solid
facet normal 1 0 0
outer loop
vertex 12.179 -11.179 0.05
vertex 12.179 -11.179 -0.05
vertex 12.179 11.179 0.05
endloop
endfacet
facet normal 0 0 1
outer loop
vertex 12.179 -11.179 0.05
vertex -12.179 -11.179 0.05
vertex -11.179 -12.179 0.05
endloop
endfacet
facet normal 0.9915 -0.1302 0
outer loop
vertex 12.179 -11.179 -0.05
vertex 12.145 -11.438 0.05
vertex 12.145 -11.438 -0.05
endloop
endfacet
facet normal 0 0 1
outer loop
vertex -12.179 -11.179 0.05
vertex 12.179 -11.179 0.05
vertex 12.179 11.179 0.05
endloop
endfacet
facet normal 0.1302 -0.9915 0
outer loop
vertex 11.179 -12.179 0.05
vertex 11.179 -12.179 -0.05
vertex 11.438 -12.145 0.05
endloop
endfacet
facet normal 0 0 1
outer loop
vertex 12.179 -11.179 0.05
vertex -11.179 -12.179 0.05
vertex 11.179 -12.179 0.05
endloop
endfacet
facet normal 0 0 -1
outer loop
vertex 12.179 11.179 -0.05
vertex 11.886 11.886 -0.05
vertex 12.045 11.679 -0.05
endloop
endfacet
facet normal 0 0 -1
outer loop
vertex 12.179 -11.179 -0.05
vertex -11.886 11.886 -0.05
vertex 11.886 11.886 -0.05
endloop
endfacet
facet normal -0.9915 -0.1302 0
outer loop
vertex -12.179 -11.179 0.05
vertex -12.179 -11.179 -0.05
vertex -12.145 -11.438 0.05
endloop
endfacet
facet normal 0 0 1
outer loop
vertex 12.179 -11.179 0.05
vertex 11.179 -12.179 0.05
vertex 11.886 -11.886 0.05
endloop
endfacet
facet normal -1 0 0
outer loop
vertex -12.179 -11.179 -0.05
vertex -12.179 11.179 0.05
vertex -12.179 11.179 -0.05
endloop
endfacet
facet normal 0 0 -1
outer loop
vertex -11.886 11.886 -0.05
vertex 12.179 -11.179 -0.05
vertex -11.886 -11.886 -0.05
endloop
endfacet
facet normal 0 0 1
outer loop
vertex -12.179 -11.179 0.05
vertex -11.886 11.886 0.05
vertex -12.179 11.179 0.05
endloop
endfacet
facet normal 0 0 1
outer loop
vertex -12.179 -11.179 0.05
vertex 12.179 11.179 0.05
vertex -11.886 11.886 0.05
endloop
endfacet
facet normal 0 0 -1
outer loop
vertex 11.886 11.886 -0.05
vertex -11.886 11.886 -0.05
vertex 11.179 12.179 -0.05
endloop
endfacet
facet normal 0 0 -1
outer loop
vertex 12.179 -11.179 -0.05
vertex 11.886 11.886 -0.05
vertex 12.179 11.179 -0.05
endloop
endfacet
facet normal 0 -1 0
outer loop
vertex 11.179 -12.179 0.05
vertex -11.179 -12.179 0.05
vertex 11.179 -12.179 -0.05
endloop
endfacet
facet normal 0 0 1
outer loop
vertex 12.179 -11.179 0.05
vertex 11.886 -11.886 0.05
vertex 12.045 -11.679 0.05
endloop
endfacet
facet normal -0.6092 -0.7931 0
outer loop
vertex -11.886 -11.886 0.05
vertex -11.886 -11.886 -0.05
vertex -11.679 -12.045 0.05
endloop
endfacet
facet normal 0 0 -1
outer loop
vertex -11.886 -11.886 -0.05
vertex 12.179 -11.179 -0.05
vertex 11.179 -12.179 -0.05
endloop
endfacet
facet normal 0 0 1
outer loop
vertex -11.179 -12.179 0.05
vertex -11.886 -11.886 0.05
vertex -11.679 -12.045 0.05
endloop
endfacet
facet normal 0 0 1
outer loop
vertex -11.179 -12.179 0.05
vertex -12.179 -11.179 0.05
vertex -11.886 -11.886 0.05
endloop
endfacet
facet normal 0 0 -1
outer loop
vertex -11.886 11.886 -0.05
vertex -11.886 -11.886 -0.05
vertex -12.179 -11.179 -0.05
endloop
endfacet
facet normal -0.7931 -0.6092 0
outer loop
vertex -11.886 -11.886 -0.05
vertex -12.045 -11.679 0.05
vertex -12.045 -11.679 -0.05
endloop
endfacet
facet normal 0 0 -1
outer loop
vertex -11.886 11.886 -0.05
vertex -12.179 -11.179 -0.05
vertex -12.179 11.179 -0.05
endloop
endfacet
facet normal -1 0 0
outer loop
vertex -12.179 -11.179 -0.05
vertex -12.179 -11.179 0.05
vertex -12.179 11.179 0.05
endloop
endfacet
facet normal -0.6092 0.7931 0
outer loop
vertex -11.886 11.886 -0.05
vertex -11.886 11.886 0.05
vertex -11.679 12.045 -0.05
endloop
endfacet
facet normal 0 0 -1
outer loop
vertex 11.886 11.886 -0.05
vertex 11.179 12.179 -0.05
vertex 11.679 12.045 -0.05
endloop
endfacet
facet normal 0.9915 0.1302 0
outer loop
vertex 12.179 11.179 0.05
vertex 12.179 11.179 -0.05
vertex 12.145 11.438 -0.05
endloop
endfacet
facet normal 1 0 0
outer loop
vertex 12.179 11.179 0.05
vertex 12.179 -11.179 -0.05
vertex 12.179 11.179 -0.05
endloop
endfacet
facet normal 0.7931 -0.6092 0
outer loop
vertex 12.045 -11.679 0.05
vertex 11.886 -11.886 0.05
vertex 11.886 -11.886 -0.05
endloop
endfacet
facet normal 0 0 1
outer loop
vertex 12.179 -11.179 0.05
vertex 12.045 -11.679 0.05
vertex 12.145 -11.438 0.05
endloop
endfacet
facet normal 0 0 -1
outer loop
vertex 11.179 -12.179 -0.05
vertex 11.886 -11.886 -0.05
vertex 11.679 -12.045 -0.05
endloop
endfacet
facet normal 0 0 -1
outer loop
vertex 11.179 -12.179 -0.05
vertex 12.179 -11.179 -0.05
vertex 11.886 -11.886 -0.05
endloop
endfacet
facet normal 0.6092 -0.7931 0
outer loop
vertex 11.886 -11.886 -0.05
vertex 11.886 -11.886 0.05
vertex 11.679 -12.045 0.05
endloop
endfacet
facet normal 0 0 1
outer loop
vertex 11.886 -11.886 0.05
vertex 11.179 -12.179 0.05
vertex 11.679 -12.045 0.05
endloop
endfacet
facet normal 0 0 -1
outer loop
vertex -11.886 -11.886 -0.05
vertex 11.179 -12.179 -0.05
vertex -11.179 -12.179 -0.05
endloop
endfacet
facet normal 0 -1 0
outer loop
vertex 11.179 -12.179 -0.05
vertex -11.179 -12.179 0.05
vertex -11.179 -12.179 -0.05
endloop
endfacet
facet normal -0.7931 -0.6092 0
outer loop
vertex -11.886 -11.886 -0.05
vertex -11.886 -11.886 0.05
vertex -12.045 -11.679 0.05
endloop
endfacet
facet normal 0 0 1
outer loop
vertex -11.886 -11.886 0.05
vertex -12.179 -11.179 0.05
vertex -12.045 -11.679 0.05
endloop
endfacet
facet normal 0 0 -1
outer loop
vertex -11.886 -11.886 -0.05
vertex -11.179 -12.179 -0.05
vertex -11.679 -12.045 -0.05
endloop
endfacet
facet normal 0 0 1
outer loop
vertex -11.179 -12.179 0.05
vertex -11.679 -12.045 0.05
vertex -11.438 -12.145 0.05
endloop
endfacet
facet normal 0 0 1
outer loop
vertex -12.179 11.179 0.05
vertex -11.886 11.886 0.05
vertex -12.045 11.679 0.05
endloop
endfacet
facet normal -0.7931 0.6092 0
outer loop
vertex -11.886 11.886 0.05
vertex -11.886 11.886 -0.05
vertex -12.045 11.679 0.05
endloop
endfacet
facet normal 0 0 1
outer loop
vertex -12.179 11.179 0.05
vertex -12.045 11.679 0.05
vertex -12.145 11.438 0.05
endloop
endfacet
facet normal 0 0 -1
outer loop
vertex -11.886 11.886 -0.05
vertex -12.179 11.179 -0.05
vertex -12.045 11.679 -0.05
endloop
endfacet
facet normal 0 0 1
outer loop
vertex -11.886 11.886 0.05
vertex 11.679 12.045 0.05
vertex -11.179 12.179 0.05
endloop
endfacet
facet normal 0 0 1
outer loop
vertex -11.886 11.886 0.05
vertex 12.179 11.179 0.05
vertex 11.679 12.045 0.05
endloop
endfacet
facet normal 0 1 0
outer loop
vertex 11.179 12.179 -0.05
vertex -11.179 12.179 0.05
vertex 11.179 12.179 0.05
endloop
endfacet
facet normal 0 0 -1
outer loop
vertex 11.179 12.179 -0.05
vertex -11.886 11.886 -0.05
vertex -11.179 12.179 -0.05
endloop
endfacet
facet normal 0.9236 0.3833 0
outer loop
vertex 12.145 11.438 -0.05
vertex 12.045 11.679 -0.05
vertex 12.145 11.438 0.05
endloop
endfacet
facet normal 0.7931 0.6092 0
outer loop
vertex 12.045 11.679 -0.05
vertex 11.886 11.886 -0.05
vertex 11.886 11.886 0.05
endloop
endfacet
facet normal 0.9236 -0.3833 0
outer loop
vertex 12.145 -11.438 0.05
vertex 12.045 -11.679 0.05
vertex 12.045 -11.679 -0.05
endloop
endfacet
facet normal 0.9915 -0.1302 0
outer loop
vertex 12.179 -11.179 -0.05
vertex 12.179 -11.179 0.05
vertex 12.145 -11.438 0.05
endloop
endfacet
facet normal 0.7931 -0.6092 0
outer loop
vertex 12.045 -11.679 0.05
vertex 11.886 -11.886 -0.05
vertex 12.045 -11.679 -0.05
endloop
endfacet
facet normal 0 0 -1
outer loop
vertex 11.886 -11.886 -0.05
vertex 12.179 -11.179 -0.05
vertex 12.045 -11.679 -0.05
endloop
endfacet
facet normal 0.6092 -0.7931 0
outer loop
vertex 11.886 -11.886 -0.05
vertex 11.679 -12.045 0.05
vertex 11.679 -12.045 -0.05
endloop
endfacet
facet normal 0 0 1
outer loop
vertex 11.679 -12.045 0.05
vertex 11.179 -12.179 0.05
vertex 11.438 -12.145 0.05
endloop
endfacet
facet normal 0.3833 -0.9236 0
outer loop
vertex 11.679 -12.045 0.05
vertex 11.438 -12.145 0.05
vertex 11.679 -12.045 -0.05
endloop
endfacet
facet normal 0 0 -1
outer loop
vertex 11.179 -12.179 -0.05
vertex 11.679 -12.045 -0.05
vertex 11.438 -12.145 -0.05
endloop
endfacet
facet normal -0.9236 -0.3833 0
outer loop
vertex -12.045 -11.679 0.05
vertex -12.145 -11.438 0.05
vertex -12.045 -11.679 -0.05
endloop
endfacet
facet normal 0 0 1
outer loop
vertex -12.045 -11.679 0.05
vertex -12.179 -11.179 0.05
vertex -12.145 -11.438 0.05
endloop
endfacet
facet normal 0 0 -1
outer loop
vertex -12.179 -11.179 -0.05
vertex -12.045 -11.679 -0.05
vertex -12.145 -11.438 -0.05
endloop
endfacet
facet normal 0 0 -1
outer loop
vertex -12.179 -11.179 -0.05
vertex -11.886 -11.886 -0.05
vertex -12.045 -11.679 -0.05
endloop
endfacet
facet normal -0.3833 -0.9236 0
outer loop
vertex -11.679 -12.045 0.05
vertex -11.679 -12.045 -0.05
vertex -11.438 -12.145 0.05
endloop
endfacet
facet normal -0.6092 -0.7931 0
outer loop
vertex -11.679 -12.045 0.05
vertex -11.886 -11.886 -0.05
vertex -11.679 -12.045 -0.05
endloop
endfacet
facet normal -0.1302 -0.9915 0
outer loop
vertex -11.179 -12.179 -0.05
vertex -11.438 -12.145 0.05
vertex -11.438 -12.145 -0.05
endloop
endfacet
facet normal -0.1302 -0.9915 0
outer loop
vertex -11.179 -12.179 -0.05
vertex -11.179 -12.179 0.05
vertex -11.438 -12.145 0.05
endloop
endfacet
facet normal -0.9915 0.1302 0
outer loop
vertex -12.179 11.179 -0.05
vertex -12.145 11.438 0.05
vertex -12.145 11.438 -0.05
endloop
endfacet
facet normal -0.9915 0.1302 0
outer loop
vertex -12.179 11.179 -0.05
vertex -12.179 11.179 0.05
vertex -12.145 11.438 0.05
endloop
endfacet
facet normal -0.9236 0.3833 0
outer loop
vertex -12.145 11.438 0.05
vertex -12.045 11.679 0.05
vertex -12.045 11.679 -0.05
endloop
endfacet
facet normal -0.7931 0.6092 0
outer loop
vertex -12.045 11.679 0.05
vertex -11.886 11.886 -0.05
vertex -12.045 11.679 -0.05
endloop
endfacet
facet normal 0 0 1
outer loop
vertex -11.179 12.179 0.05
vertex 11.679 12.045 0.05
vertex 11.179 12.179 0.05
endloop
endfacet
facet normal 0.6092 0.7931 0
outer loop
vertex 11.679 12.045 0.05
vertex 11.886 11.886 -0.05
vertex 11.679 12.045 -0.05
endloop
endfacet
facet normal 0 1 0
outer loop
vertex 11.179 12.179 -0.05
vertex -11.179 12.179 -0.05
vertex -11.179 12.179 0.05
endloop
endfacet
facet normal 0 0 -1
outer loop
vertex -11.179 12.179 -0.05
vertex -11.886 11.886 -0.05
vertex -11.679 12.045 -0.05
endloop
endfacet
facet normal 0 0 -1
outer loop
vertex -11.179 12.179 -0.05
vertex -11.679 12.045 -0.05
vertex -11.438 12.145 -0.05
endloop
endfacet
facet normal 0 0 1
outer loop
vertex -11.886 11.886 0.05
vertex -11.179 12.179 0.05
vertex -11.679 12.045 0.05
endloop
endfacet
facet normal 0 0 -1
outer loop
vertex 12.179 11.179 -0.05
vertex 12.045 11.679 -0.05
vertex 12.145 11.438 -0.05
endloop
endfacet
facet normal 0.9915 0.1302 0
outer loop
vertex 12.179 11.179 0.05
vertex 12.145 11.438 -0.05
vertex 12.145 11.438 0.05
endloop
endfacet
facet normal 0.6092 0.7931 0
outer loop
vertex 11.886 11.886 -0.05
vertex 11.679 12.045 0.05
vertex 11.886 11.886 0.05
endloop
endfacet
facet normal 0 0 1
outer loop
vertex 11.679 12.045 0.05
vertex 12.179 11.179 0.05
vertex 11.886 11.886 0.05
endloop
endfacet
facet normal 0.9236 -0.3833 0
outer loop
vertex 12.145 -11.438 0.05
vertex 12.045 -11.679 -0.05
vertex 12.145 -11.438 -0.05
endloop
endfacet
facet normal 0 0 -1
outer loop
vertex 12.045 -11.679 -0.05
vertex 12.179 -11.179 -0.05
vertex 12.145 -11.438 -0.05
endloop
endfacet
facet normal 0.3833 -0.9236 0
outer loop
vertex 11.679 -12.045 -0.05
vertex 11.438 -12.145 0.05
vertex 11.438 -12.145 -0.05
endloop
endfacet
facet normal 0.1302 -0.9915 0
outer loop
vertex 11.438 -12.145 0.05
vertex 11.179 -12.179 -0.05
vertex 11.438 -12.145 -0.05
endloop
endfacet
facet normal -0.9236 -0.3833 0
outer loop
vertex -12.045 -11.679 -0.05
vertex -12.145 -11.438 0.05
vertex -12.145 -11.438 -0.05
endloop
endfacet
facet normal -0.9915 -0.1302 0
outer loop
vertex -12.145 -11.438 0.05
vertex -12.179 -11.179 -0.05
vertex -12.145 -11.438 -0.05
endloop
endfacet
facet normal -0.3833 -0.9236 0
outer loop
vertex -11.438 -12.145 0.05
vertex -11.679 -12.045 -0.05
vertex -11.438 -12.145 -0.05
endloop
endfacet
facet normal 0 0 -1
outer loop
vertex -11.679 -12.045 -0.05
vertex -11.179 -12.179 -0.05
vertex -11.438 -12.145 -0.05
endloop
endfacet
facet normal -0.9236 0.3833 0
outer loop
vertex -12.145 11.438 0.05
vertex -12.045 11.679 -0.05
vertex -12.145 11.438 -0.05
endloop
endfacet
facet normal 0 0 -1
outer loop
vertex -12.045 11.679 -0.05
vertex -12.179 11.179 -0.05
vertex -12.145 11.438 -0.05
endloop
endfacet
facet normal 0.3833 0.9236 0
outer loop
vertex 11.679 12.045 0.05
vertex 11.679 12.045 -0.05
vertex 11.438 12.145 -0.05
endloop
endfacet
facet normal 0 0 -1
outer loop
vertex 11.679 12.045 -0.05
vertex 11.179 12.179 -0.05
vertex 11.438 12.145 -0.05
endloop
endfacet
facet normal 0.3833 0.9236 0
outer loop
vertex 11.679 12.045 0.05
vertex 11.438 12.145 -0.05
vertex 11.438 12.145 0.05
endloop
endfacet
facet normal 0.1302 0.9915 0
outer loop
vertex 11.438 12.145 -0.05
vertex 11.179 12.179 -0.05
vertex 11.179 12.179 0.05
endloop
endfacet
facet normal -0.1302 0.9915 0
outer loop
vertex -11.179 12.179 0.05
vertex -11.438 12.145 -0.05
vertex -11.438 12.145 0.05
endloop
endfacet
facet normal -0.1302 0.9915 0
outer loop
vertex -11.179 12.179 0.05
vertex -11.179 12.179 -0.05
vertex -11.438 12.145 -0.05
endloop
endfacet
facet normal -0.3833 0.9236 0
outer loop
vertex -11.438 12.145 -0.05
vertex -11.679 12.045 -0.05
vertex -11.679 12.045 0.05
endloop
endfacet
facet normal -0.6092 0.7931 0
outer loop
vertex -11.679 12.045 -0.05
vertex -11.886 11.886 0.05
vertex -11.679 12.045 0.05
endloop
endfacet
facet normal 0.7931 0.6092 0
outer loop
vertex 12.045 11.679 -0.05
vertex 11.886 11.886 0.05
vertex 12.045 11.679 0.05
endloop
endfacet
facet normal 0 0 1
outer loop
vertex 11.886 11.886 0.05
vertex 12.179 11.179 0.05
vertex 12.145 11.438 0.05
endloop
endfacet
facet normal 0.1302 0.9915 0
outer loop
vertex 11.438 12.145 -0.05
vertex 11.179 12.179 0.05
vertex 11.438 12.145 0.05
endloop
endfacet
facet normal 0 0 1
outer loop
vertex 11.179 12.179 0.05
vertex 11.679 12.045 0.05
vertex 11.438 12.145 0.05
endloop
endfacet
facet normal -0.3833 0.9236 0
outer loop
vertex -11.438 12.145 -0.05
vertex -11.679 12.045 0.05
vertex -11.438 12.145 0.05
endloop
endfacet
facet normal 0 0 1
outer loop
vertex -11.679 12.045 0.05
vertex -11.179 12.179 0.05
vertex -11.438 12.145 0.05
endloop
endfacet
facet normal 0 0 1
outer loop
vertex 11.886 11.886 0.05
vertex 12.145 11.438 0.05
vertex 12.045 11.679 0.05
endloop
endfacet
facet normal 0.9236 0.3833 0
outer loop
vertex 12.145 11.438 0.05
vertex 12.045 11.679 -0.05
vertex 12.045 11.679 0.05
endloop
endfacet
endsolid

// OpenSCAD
// file: def.scad
round_radius = 1.25;
sticker_margin = 3;
sticker_round_radius = 1;
total_size = 75;
base_size = (total_size - round_radius * 4) / (4 + sqrt(2));
cut1_dis = base_size * sqrt(2) / 2;
cut2_dis = base_size * (1 + sqrt(2) / 2);
cut2_corner_dis = base_size * (sqrt(2) / 2 * sqrt(3) + 1 / 3 * sqrt(3));
inf = total_size * 10;
// main file
include <def.scad>

module large_sticker() {
    minkowski() {
        cube([base_size * 2 + round_radius * 2 - sticker_margin * 2, base_size * 2 + round_radius * 2 - sticker_margin * 2, 0.05], center = true);
        cylinder(r = sticker_round_radius, h = 0.05, center = true, $fn = 24);
    }
}

large_sticker();
